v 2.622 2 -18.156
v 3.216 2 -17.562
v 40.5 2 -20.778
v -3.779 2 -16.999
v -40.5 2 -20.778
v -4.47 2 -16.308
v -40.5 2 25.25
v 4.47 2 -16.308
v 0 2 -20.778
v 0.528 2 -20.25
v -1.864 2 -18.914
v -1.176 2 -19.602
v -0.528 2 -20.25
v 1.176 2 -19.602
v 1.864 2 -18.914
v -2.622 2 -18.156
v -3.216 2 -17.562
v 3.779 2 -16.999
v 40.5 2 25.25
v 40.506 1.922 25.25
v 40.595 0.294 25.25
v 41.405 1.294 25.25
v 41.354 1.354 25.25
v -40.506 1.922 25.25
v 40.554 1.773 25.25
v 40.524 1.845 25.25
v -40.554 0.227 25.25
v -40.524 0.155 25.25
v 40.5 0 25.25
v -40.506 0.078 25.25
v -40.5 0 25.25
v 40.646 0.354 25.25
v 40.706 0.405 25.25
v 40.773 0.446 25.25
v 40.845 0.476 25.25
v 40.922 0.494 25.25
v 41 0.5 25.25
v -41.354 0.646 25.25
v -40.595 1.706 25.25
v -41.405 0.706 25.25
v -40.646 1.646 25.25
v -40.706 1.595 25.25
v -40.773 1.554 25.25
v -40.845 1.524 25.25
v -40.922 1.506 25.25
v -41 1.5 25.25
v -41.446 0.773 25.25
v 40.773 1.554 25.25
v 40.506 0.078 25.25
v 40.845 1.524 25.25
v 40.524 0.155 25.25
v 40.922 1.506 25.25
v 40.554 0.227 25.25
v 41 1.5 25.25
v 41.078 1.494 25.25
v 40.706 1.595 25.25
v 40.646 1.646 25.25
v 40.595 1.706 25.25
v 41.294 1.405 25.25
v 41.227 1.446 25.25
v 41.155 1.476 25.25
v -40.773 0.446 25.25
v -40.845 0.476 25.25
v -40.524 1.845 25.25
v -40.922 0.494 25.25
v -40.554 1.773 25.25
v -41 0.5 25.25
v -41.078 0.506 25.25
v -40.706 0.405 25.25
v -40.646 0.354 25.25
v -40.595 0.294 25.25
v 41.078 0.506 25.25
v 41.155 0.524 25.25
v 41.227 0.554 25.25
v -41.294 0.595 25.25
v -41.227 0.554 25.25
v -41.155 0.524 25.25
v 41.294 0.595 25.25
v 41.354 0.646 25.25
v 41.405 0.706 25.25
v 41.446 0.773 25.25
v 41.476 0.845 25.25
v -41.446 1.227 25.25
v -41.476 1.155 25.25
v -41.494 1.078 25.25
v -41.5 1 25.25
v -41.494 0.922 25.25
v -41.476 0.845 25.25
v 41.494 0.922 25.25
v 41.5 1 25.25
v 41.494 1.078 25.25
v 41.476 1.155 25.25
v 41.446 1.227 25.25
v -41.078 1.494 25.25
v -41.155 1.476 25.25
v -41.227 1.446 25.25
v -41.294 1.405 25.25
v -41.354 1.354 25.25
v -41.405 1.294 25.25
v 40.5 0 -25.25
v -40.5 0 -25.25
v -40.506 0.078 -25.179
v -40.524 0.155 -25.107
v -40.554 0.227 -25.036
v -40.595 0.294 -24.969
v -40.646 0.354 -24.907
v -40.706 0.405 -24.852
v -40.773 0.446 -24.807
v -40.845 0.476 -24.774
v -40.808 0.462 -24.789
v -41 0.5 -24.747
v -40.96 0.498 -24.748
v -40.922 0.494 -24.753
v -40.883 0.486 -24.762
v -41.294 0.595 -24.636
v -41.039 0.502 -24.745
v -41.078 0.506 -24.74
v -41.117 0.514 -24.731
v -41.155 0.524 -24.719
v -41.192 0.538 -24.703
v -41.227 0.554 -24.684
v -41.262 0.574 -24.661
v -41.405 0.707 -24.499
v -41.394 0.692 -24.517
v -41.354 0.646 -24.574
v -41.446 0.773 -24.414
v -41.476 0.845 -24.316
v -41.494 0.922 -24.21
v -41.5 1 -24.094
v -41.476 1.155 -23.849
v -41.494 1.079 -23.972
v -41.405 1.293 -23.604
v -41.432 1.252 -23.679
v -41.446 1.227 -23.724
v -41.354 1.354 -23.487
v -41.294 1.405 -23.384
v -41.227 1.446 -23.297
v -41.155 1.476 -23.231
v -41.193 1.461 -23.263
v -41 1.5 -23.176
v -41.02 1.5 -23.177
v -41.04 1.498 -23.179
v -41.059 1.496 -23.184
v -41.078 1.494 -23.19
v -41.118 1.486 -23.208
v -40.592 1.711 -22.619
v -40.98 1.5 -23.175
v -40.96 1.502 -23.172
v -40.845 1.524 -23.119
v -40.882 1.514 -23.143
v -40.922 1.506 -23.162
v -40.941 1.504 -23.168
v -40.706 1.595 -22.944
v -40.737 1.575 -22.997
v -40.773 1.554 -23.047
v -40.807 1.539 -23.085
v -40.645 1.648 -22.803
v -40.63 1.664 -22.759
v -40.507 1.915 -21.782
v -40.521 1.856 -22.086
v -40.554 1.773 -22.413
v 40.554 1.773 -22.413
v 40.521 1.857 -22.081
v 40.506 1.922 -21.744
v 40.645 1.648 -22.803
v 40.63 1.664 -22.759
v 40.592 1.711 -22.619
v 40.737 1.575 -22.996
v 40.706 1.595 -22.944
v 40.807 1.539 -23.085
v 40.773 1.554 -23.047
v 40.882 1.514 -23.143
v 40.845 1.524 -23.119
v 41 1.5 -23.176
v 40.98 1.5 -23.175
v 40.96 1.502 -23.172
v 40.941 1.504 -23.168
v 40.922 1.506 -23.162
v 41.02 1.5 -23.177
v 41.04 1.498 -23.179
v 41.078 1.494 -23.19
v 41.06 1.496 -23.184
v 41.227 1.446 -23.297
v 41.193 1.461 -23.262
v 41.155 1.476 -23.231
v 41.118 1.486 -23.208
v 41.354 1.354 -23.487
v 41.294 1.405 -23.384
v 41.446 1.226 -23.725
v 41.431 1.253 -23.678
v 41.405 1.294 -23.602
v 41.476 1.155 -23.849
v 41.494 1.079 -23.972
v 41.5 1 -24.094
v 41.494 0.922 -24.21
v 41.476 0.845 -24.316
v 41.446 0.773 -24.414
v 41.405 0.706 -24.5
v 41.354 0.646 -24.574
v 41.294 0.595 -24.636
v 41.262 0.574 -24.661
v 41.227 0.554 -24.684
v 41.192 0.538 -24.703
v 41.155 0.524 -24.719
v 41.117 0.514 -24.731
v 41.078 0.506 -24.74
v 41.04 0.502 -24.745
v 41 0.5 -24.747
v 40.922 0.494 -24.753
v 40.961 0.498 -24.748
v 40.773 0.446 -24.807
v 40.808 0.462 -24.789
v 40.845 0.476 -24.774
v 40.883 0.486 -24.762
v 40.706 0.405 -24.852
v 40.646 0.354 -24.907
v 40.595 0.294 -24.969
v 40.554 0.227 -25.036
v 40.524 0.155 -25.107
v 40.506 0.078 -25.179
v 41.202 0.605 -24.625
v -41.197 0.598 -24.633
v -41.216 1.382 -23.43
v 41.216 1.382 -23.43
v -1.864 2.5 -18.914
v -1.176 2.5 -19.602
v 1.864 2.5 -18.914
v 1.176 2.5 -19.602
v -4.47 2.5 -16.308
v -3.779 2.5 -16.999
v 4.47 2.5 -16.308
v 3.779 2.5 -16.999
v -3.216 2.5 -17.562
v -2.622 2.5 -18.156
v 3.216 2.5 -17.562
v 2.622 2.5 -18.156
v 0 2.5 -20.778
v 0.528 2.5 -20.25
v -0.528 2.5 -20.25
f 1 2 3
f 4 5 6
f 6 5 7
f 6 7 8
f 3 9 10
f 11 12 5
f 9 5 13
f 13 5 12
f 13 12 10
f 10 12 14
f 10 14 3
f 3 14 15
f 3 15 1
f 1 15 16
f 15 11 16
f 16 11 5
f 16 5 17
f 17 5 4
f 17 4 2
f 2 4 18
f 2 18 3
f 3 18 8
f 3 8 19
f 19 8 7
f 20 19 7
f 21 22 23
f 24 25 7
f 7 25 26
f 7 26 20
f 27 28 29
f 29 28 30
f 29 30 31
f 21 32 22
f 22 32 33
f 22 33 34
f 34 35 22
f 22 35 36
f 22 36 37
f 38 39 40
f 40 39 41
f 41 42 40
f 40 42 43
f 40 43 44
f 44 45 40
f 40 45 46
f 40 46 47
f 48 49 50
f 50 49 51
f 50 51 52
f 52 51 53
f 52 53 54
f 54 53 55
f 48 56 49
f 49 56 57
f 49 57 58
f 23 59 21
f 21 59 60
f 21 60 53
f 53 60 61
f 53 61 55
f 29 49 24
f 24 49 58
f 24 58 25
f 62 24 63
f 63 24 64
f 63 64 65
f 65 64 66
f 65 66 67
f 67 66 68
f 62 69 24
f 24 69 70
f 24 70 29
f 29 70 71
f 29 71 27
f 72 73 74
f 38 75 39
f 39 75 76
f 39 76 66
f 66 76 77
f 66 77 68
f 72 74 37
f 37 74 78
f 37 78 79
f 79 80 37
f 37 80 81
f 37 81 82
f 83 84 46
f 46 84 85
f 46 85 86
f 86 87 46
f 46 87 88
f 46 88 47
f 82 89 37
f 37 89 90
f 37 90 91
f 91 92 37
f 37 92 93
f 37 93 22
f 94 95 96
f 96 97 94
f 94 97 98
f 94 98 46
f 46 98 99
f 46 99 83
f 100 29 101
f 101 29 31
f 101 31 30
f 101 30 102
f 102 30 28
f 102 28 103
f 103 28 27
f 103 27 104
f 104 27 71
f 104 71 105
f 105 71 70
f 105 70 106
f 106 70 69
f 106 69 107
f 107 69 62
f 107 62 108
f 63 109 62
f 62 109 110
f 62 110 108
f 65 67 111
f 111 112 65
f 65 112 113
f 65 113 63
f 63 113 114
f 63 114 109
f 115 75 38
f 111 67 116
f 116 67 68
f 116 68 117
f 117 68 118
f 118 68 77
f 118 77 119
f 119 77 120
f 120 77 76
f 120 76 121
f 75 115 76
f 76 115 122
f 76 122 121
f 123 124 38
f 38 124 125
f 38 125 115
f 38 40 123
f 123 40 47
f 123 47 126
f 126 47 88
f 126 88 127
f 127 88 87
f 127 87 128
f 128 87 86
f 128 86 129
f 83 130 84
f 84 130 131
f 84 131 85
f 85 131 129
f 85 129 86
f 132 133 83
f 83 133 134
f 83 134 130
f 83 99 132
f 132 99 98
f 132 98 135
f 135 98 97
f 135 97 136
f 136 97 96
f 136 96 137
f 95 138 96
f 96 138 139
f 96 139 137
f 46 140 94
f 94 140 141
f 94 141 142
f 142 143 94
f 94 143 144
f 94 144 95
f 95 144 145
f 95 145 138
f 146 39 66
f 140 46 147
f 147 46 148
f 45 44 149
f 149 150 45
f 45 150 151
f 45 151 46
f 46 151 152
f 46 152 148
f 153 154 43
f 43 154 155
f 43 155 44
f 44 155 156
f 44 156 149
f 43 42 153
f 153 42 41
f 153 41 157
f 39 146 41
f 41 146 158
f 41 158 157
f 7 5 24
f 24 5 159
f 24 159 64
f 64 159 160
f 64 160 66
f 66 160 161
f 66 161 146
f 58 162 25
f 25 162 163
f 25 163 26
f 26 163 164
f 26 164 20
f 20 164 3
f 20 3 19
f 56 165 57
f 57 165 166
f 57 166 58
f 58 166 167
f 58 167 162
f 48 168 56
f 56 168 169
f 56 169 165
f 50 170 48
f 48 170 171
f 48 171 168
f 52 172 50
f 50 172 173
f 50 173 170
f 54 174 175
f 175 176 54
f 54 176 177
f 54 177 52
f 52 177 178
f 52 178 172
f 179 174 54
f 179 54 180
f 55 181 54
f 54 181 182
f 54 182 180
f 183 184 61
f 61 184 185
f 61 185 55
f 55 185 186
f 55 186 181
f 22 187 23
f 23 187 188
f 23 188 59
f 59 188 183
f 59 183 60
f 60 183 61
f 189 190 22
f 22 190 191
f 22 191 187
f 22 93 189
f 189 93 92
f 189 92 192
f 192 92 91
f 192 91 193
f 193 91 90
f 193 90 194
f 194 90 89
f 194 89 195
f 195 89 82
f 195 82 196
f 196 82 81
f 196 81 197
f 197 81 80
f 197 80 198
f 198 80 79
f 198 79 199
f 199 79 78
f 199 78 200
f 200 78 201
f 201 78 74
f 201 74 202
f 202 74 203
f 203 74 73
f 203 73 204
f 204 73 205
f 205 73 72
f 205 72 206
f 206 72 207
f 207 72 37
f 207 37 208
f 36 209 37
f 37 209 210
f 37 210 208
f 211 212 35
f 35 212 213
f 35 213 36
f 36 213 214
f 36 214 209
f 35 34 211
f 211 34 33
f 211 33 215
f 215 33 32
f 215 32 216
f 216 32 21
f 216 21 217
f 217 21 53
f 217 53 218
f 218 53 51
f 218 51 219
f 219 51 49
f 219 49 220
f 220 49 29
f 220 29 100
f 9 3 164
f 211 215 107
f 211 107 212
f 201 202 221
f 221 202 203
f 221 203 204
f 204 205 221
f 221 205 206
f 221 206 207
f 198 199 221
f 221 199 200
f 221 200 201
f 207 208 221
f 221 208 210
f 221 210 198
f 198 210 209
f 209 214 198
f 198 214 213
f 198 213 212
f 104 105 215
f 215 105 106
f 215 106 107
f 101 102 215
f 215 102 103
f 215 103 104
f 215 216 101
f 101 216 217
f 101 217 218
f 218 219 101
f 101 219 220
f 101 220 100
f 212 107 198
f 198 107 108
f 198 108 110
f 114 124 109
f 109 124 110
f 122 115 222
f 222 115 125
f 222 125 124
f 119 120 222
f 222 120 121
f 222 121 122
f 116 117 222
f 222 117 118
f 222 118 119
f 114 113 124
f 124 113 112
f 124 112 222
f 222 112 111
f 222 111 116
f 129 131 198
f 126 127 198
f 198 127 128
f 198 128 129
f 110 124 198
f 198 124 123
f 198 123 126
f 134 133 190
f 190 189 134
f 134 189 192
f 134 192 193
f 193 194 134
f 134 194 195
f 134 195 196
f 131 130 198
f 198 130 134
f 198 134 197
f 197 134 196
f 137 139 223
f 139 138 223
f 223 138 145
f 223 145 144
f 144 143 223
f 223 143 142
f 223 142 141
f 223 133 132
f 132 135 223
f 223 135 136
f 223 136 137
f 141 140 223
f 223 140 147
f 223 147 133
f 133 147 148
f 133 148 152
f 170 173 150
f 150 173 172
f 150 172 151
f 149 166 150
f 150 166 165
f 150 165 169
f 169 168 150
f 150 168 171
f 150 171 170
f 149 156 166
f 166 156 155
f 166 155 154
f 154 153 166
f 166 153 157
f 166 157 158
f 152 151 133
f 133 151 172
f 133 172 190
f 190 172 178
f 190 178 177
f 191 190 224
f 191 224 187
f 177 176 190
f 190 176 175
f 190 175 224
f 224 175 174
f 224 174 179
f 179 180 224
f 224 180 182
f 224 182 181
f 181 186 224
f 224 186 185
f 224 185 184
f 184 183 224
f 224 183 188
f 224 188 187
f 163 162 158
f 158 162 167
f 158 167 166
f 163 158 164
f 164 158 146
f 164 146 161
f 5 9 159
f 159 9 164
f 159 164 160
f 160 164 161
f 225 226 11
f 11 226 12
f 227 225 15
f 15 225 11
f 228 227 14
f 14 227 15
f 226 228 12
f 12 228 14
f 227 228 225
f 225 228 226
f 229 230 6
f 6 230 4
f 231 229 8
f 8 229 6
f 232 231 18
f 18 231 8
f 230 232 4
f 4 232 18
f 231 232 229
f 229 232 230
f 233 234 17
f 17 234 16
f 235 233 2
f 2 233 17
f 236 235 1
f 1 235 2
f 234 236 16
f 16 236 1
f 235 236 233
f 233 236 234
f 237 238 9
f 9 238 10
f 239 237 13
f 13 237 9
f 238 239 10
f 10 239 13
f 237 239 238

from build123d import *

# Parameters (mm, degrees)
SKETCH1_W           = 81
SKETCH1_H           = 50.5
BOSS_EXTRUDE1_DEPTH = 2
SKETCH2_W           = 50.5
SKETCH2_H           = 1
EXTRUDE_THIN1_DEPTH = 1
FILLET4_START       = -26
FILLET4_DEPTH       = 52
FILLET4_START_2     = -25.25
FILLET4_2_DEPTH     = 50.5
FILLET8_R           = 6
BOSS_EXTRUDE2_DEPTH = 0.5


with BuildPart() as part:
    # Sketch1 → Boss-Extrude1 (new body)
    with BuildSketch(Plane(origin=(0, 0, 0), x_dir=(1, 0, 0), z_dir=(0, 1, 0))):
        Rectangle(SKETCH1_W, SKETCH1_H)
    extrude(amount=BOSS_EXTRUDE1_DEPTH)

    # Sketch2 → Extrude-Thin1 (add)
    with BuildSketch(Plane(origin=(40.5, 0, 0), x_dir=(0, 0, -1), z_dir=(1, 0, 0))):
        with Locations((0, 1)):
            Rectangle(SKETCH2_W, SKETCH2_H)
    extrude_thin1 = extrude(amount=EXTRUDE_THIN1_DEPTH)

    # Mirror1: Extrude-Thin1 across plane
    add(extrude_thin1.mirror(Plane(origin=(0, 0, 0), x_dir=(0, 0, 1), z_dir=(1, 0, 0))))

    # Fillet4: read off the stored shape, not the designer's step
    # Fillet4 outline → Fillet4 (cut)
    with BuildSketch(Plane.XY.offset(FILLET4_START)):
        with BuildLine():
            Line((-41.5, 0.5), (-41, 0.5))
            ThreePointArc((-41, 0.5), (-41.353553391, 0.646446609), (-41.5, 1))
            Line((-41.5, 1), (-41.5, 0.5))
        make_face()
        with BuildLine():
            Line((-41.5, 1.5), (-41.5, 1))
            ThreePointArc((-41.5, 1), (-41.353553391, 1.353553391), (-41, 1.5))
            Line((-41, 1.5), (-41.5, 1.5))
        make_face()
        with BuildLine():
            Line((41.5, 1.5), (41, 1.5))
            ThreePointArc((41, 1.5), (41.353553391, 1.353553391), (41.5, 1))
            Line((41.5, 1), (41.5, 1.5))
        make_face()
        with BuildLine():
            Line((41.5, 0.5), (41.5, 1))
            ThreePointArc((41.5, 1), (41.353553391, 0.646446609), (41, 0.5))
            Line((41, 0.5), (41.5, 0.5))
        make_face()
    extrude(amount=FILLET4_DEPTH, mode=Mode.SUBTRACT)

    # Fillet4 2 outline → Fillet4 2 (add)
    with BuildSketch(Plane.XY.offset(FILLET4_START_2)):
        with BuildLine():
            Line((-40.5, 0.5), (-41, 0.5))
            ThreePointArc((-41, 0.5), (-40.646446609, 0.353553391), (-40.5, 0))
            Line((-40.5, 0), (-40.5, 0.5))
        make_face()
        with BuildLine():
            ThreePointArc((-40.5, 2), (-40.646446609, 1.646446609), (-41, 1.5))
            Line((-41, 1.5), (-40.5, 1.5))
            Line((-40.5, 1.5), (-40.5, 2))
        make_face()
        with BuildLine():
            Line((40.5, 1.5), (41, 1.5))
            ThreePointArc((41, 1.5), (40.646446609, 1.646446609), (40.5, 2))
            Line((40.5, 2), (40.5, 1.5))
        make_face()
        with BuildLine():
            ThreePointArc((40.5, 0), (40.646446609, 0.353553391), (41, 0.5))
            Line((41, 0.5), (40.5, 0.5))
            Line((40.5, 0.5), (40.5, 0))
        make_face()
    extrude(amount=FILLET4_2_DEPTH)

    # Fillet8
    # the kernel refuses this fillet: 6 mm, written as the material it takes off along each edge
    with BuildSketch(Plane(origin=(-51.680339887, 2, -25.25), x_dir=(0, -1, 0), z_dir=(1, 0, 0))) as fillet8_piece_1:
        with BuildLine():
            CenterArc((6, -4.472135955), FILLET8_R, 131.810314896, 48.189685104)
            Line((0, -4.472135955), (-0.12, -4.472135955))
            Line((-0.12, -4.472135955), (-0.12, 0))
            Line((-0.12, 0), (0, 0.12))
            ThreePointArc((0, 0.12), (1, 0.12), (1.92, 0.089442719))
            Line((1.92, 0.089442719), (2, 0))
        make_face()
    extrude(amount=103.360679775, mode=Mode.SUBTRACT)

    # Sketch3 → Boss-Extrude2 (add)
    with BuildSketch(Plane(origin=(0, 2, 0), x_dir=(1, 0, 0), z_dir=(0, 1, 0))):
        Polygon((0, 20.777864045), (-0.527934032, 20.249930013), (0.527934032, 20.249930013), align=None)
        Polygon((-4.470357419, 16.307506626), (4.470357419, 16.307506626), (3.779119733, 16.998744312), (-3.779119733, 16.998744312), align=None)
        Polygon((-1.175607402, 19.602256643), (1.175607402, 19.602256643), (1.863999283, 18.913864762), (-1.863999283, 18.913864762), align=None)
        Polygon((-2.621779089, 18.156084956), (2.621779089, 18.156084956), (3.215777687, 17.562086358), (-3.215777687, 17.562086358), align=None)
    extrude(amount=BOSS_EXTRUDE2_DEPTH)


solid = part.part
